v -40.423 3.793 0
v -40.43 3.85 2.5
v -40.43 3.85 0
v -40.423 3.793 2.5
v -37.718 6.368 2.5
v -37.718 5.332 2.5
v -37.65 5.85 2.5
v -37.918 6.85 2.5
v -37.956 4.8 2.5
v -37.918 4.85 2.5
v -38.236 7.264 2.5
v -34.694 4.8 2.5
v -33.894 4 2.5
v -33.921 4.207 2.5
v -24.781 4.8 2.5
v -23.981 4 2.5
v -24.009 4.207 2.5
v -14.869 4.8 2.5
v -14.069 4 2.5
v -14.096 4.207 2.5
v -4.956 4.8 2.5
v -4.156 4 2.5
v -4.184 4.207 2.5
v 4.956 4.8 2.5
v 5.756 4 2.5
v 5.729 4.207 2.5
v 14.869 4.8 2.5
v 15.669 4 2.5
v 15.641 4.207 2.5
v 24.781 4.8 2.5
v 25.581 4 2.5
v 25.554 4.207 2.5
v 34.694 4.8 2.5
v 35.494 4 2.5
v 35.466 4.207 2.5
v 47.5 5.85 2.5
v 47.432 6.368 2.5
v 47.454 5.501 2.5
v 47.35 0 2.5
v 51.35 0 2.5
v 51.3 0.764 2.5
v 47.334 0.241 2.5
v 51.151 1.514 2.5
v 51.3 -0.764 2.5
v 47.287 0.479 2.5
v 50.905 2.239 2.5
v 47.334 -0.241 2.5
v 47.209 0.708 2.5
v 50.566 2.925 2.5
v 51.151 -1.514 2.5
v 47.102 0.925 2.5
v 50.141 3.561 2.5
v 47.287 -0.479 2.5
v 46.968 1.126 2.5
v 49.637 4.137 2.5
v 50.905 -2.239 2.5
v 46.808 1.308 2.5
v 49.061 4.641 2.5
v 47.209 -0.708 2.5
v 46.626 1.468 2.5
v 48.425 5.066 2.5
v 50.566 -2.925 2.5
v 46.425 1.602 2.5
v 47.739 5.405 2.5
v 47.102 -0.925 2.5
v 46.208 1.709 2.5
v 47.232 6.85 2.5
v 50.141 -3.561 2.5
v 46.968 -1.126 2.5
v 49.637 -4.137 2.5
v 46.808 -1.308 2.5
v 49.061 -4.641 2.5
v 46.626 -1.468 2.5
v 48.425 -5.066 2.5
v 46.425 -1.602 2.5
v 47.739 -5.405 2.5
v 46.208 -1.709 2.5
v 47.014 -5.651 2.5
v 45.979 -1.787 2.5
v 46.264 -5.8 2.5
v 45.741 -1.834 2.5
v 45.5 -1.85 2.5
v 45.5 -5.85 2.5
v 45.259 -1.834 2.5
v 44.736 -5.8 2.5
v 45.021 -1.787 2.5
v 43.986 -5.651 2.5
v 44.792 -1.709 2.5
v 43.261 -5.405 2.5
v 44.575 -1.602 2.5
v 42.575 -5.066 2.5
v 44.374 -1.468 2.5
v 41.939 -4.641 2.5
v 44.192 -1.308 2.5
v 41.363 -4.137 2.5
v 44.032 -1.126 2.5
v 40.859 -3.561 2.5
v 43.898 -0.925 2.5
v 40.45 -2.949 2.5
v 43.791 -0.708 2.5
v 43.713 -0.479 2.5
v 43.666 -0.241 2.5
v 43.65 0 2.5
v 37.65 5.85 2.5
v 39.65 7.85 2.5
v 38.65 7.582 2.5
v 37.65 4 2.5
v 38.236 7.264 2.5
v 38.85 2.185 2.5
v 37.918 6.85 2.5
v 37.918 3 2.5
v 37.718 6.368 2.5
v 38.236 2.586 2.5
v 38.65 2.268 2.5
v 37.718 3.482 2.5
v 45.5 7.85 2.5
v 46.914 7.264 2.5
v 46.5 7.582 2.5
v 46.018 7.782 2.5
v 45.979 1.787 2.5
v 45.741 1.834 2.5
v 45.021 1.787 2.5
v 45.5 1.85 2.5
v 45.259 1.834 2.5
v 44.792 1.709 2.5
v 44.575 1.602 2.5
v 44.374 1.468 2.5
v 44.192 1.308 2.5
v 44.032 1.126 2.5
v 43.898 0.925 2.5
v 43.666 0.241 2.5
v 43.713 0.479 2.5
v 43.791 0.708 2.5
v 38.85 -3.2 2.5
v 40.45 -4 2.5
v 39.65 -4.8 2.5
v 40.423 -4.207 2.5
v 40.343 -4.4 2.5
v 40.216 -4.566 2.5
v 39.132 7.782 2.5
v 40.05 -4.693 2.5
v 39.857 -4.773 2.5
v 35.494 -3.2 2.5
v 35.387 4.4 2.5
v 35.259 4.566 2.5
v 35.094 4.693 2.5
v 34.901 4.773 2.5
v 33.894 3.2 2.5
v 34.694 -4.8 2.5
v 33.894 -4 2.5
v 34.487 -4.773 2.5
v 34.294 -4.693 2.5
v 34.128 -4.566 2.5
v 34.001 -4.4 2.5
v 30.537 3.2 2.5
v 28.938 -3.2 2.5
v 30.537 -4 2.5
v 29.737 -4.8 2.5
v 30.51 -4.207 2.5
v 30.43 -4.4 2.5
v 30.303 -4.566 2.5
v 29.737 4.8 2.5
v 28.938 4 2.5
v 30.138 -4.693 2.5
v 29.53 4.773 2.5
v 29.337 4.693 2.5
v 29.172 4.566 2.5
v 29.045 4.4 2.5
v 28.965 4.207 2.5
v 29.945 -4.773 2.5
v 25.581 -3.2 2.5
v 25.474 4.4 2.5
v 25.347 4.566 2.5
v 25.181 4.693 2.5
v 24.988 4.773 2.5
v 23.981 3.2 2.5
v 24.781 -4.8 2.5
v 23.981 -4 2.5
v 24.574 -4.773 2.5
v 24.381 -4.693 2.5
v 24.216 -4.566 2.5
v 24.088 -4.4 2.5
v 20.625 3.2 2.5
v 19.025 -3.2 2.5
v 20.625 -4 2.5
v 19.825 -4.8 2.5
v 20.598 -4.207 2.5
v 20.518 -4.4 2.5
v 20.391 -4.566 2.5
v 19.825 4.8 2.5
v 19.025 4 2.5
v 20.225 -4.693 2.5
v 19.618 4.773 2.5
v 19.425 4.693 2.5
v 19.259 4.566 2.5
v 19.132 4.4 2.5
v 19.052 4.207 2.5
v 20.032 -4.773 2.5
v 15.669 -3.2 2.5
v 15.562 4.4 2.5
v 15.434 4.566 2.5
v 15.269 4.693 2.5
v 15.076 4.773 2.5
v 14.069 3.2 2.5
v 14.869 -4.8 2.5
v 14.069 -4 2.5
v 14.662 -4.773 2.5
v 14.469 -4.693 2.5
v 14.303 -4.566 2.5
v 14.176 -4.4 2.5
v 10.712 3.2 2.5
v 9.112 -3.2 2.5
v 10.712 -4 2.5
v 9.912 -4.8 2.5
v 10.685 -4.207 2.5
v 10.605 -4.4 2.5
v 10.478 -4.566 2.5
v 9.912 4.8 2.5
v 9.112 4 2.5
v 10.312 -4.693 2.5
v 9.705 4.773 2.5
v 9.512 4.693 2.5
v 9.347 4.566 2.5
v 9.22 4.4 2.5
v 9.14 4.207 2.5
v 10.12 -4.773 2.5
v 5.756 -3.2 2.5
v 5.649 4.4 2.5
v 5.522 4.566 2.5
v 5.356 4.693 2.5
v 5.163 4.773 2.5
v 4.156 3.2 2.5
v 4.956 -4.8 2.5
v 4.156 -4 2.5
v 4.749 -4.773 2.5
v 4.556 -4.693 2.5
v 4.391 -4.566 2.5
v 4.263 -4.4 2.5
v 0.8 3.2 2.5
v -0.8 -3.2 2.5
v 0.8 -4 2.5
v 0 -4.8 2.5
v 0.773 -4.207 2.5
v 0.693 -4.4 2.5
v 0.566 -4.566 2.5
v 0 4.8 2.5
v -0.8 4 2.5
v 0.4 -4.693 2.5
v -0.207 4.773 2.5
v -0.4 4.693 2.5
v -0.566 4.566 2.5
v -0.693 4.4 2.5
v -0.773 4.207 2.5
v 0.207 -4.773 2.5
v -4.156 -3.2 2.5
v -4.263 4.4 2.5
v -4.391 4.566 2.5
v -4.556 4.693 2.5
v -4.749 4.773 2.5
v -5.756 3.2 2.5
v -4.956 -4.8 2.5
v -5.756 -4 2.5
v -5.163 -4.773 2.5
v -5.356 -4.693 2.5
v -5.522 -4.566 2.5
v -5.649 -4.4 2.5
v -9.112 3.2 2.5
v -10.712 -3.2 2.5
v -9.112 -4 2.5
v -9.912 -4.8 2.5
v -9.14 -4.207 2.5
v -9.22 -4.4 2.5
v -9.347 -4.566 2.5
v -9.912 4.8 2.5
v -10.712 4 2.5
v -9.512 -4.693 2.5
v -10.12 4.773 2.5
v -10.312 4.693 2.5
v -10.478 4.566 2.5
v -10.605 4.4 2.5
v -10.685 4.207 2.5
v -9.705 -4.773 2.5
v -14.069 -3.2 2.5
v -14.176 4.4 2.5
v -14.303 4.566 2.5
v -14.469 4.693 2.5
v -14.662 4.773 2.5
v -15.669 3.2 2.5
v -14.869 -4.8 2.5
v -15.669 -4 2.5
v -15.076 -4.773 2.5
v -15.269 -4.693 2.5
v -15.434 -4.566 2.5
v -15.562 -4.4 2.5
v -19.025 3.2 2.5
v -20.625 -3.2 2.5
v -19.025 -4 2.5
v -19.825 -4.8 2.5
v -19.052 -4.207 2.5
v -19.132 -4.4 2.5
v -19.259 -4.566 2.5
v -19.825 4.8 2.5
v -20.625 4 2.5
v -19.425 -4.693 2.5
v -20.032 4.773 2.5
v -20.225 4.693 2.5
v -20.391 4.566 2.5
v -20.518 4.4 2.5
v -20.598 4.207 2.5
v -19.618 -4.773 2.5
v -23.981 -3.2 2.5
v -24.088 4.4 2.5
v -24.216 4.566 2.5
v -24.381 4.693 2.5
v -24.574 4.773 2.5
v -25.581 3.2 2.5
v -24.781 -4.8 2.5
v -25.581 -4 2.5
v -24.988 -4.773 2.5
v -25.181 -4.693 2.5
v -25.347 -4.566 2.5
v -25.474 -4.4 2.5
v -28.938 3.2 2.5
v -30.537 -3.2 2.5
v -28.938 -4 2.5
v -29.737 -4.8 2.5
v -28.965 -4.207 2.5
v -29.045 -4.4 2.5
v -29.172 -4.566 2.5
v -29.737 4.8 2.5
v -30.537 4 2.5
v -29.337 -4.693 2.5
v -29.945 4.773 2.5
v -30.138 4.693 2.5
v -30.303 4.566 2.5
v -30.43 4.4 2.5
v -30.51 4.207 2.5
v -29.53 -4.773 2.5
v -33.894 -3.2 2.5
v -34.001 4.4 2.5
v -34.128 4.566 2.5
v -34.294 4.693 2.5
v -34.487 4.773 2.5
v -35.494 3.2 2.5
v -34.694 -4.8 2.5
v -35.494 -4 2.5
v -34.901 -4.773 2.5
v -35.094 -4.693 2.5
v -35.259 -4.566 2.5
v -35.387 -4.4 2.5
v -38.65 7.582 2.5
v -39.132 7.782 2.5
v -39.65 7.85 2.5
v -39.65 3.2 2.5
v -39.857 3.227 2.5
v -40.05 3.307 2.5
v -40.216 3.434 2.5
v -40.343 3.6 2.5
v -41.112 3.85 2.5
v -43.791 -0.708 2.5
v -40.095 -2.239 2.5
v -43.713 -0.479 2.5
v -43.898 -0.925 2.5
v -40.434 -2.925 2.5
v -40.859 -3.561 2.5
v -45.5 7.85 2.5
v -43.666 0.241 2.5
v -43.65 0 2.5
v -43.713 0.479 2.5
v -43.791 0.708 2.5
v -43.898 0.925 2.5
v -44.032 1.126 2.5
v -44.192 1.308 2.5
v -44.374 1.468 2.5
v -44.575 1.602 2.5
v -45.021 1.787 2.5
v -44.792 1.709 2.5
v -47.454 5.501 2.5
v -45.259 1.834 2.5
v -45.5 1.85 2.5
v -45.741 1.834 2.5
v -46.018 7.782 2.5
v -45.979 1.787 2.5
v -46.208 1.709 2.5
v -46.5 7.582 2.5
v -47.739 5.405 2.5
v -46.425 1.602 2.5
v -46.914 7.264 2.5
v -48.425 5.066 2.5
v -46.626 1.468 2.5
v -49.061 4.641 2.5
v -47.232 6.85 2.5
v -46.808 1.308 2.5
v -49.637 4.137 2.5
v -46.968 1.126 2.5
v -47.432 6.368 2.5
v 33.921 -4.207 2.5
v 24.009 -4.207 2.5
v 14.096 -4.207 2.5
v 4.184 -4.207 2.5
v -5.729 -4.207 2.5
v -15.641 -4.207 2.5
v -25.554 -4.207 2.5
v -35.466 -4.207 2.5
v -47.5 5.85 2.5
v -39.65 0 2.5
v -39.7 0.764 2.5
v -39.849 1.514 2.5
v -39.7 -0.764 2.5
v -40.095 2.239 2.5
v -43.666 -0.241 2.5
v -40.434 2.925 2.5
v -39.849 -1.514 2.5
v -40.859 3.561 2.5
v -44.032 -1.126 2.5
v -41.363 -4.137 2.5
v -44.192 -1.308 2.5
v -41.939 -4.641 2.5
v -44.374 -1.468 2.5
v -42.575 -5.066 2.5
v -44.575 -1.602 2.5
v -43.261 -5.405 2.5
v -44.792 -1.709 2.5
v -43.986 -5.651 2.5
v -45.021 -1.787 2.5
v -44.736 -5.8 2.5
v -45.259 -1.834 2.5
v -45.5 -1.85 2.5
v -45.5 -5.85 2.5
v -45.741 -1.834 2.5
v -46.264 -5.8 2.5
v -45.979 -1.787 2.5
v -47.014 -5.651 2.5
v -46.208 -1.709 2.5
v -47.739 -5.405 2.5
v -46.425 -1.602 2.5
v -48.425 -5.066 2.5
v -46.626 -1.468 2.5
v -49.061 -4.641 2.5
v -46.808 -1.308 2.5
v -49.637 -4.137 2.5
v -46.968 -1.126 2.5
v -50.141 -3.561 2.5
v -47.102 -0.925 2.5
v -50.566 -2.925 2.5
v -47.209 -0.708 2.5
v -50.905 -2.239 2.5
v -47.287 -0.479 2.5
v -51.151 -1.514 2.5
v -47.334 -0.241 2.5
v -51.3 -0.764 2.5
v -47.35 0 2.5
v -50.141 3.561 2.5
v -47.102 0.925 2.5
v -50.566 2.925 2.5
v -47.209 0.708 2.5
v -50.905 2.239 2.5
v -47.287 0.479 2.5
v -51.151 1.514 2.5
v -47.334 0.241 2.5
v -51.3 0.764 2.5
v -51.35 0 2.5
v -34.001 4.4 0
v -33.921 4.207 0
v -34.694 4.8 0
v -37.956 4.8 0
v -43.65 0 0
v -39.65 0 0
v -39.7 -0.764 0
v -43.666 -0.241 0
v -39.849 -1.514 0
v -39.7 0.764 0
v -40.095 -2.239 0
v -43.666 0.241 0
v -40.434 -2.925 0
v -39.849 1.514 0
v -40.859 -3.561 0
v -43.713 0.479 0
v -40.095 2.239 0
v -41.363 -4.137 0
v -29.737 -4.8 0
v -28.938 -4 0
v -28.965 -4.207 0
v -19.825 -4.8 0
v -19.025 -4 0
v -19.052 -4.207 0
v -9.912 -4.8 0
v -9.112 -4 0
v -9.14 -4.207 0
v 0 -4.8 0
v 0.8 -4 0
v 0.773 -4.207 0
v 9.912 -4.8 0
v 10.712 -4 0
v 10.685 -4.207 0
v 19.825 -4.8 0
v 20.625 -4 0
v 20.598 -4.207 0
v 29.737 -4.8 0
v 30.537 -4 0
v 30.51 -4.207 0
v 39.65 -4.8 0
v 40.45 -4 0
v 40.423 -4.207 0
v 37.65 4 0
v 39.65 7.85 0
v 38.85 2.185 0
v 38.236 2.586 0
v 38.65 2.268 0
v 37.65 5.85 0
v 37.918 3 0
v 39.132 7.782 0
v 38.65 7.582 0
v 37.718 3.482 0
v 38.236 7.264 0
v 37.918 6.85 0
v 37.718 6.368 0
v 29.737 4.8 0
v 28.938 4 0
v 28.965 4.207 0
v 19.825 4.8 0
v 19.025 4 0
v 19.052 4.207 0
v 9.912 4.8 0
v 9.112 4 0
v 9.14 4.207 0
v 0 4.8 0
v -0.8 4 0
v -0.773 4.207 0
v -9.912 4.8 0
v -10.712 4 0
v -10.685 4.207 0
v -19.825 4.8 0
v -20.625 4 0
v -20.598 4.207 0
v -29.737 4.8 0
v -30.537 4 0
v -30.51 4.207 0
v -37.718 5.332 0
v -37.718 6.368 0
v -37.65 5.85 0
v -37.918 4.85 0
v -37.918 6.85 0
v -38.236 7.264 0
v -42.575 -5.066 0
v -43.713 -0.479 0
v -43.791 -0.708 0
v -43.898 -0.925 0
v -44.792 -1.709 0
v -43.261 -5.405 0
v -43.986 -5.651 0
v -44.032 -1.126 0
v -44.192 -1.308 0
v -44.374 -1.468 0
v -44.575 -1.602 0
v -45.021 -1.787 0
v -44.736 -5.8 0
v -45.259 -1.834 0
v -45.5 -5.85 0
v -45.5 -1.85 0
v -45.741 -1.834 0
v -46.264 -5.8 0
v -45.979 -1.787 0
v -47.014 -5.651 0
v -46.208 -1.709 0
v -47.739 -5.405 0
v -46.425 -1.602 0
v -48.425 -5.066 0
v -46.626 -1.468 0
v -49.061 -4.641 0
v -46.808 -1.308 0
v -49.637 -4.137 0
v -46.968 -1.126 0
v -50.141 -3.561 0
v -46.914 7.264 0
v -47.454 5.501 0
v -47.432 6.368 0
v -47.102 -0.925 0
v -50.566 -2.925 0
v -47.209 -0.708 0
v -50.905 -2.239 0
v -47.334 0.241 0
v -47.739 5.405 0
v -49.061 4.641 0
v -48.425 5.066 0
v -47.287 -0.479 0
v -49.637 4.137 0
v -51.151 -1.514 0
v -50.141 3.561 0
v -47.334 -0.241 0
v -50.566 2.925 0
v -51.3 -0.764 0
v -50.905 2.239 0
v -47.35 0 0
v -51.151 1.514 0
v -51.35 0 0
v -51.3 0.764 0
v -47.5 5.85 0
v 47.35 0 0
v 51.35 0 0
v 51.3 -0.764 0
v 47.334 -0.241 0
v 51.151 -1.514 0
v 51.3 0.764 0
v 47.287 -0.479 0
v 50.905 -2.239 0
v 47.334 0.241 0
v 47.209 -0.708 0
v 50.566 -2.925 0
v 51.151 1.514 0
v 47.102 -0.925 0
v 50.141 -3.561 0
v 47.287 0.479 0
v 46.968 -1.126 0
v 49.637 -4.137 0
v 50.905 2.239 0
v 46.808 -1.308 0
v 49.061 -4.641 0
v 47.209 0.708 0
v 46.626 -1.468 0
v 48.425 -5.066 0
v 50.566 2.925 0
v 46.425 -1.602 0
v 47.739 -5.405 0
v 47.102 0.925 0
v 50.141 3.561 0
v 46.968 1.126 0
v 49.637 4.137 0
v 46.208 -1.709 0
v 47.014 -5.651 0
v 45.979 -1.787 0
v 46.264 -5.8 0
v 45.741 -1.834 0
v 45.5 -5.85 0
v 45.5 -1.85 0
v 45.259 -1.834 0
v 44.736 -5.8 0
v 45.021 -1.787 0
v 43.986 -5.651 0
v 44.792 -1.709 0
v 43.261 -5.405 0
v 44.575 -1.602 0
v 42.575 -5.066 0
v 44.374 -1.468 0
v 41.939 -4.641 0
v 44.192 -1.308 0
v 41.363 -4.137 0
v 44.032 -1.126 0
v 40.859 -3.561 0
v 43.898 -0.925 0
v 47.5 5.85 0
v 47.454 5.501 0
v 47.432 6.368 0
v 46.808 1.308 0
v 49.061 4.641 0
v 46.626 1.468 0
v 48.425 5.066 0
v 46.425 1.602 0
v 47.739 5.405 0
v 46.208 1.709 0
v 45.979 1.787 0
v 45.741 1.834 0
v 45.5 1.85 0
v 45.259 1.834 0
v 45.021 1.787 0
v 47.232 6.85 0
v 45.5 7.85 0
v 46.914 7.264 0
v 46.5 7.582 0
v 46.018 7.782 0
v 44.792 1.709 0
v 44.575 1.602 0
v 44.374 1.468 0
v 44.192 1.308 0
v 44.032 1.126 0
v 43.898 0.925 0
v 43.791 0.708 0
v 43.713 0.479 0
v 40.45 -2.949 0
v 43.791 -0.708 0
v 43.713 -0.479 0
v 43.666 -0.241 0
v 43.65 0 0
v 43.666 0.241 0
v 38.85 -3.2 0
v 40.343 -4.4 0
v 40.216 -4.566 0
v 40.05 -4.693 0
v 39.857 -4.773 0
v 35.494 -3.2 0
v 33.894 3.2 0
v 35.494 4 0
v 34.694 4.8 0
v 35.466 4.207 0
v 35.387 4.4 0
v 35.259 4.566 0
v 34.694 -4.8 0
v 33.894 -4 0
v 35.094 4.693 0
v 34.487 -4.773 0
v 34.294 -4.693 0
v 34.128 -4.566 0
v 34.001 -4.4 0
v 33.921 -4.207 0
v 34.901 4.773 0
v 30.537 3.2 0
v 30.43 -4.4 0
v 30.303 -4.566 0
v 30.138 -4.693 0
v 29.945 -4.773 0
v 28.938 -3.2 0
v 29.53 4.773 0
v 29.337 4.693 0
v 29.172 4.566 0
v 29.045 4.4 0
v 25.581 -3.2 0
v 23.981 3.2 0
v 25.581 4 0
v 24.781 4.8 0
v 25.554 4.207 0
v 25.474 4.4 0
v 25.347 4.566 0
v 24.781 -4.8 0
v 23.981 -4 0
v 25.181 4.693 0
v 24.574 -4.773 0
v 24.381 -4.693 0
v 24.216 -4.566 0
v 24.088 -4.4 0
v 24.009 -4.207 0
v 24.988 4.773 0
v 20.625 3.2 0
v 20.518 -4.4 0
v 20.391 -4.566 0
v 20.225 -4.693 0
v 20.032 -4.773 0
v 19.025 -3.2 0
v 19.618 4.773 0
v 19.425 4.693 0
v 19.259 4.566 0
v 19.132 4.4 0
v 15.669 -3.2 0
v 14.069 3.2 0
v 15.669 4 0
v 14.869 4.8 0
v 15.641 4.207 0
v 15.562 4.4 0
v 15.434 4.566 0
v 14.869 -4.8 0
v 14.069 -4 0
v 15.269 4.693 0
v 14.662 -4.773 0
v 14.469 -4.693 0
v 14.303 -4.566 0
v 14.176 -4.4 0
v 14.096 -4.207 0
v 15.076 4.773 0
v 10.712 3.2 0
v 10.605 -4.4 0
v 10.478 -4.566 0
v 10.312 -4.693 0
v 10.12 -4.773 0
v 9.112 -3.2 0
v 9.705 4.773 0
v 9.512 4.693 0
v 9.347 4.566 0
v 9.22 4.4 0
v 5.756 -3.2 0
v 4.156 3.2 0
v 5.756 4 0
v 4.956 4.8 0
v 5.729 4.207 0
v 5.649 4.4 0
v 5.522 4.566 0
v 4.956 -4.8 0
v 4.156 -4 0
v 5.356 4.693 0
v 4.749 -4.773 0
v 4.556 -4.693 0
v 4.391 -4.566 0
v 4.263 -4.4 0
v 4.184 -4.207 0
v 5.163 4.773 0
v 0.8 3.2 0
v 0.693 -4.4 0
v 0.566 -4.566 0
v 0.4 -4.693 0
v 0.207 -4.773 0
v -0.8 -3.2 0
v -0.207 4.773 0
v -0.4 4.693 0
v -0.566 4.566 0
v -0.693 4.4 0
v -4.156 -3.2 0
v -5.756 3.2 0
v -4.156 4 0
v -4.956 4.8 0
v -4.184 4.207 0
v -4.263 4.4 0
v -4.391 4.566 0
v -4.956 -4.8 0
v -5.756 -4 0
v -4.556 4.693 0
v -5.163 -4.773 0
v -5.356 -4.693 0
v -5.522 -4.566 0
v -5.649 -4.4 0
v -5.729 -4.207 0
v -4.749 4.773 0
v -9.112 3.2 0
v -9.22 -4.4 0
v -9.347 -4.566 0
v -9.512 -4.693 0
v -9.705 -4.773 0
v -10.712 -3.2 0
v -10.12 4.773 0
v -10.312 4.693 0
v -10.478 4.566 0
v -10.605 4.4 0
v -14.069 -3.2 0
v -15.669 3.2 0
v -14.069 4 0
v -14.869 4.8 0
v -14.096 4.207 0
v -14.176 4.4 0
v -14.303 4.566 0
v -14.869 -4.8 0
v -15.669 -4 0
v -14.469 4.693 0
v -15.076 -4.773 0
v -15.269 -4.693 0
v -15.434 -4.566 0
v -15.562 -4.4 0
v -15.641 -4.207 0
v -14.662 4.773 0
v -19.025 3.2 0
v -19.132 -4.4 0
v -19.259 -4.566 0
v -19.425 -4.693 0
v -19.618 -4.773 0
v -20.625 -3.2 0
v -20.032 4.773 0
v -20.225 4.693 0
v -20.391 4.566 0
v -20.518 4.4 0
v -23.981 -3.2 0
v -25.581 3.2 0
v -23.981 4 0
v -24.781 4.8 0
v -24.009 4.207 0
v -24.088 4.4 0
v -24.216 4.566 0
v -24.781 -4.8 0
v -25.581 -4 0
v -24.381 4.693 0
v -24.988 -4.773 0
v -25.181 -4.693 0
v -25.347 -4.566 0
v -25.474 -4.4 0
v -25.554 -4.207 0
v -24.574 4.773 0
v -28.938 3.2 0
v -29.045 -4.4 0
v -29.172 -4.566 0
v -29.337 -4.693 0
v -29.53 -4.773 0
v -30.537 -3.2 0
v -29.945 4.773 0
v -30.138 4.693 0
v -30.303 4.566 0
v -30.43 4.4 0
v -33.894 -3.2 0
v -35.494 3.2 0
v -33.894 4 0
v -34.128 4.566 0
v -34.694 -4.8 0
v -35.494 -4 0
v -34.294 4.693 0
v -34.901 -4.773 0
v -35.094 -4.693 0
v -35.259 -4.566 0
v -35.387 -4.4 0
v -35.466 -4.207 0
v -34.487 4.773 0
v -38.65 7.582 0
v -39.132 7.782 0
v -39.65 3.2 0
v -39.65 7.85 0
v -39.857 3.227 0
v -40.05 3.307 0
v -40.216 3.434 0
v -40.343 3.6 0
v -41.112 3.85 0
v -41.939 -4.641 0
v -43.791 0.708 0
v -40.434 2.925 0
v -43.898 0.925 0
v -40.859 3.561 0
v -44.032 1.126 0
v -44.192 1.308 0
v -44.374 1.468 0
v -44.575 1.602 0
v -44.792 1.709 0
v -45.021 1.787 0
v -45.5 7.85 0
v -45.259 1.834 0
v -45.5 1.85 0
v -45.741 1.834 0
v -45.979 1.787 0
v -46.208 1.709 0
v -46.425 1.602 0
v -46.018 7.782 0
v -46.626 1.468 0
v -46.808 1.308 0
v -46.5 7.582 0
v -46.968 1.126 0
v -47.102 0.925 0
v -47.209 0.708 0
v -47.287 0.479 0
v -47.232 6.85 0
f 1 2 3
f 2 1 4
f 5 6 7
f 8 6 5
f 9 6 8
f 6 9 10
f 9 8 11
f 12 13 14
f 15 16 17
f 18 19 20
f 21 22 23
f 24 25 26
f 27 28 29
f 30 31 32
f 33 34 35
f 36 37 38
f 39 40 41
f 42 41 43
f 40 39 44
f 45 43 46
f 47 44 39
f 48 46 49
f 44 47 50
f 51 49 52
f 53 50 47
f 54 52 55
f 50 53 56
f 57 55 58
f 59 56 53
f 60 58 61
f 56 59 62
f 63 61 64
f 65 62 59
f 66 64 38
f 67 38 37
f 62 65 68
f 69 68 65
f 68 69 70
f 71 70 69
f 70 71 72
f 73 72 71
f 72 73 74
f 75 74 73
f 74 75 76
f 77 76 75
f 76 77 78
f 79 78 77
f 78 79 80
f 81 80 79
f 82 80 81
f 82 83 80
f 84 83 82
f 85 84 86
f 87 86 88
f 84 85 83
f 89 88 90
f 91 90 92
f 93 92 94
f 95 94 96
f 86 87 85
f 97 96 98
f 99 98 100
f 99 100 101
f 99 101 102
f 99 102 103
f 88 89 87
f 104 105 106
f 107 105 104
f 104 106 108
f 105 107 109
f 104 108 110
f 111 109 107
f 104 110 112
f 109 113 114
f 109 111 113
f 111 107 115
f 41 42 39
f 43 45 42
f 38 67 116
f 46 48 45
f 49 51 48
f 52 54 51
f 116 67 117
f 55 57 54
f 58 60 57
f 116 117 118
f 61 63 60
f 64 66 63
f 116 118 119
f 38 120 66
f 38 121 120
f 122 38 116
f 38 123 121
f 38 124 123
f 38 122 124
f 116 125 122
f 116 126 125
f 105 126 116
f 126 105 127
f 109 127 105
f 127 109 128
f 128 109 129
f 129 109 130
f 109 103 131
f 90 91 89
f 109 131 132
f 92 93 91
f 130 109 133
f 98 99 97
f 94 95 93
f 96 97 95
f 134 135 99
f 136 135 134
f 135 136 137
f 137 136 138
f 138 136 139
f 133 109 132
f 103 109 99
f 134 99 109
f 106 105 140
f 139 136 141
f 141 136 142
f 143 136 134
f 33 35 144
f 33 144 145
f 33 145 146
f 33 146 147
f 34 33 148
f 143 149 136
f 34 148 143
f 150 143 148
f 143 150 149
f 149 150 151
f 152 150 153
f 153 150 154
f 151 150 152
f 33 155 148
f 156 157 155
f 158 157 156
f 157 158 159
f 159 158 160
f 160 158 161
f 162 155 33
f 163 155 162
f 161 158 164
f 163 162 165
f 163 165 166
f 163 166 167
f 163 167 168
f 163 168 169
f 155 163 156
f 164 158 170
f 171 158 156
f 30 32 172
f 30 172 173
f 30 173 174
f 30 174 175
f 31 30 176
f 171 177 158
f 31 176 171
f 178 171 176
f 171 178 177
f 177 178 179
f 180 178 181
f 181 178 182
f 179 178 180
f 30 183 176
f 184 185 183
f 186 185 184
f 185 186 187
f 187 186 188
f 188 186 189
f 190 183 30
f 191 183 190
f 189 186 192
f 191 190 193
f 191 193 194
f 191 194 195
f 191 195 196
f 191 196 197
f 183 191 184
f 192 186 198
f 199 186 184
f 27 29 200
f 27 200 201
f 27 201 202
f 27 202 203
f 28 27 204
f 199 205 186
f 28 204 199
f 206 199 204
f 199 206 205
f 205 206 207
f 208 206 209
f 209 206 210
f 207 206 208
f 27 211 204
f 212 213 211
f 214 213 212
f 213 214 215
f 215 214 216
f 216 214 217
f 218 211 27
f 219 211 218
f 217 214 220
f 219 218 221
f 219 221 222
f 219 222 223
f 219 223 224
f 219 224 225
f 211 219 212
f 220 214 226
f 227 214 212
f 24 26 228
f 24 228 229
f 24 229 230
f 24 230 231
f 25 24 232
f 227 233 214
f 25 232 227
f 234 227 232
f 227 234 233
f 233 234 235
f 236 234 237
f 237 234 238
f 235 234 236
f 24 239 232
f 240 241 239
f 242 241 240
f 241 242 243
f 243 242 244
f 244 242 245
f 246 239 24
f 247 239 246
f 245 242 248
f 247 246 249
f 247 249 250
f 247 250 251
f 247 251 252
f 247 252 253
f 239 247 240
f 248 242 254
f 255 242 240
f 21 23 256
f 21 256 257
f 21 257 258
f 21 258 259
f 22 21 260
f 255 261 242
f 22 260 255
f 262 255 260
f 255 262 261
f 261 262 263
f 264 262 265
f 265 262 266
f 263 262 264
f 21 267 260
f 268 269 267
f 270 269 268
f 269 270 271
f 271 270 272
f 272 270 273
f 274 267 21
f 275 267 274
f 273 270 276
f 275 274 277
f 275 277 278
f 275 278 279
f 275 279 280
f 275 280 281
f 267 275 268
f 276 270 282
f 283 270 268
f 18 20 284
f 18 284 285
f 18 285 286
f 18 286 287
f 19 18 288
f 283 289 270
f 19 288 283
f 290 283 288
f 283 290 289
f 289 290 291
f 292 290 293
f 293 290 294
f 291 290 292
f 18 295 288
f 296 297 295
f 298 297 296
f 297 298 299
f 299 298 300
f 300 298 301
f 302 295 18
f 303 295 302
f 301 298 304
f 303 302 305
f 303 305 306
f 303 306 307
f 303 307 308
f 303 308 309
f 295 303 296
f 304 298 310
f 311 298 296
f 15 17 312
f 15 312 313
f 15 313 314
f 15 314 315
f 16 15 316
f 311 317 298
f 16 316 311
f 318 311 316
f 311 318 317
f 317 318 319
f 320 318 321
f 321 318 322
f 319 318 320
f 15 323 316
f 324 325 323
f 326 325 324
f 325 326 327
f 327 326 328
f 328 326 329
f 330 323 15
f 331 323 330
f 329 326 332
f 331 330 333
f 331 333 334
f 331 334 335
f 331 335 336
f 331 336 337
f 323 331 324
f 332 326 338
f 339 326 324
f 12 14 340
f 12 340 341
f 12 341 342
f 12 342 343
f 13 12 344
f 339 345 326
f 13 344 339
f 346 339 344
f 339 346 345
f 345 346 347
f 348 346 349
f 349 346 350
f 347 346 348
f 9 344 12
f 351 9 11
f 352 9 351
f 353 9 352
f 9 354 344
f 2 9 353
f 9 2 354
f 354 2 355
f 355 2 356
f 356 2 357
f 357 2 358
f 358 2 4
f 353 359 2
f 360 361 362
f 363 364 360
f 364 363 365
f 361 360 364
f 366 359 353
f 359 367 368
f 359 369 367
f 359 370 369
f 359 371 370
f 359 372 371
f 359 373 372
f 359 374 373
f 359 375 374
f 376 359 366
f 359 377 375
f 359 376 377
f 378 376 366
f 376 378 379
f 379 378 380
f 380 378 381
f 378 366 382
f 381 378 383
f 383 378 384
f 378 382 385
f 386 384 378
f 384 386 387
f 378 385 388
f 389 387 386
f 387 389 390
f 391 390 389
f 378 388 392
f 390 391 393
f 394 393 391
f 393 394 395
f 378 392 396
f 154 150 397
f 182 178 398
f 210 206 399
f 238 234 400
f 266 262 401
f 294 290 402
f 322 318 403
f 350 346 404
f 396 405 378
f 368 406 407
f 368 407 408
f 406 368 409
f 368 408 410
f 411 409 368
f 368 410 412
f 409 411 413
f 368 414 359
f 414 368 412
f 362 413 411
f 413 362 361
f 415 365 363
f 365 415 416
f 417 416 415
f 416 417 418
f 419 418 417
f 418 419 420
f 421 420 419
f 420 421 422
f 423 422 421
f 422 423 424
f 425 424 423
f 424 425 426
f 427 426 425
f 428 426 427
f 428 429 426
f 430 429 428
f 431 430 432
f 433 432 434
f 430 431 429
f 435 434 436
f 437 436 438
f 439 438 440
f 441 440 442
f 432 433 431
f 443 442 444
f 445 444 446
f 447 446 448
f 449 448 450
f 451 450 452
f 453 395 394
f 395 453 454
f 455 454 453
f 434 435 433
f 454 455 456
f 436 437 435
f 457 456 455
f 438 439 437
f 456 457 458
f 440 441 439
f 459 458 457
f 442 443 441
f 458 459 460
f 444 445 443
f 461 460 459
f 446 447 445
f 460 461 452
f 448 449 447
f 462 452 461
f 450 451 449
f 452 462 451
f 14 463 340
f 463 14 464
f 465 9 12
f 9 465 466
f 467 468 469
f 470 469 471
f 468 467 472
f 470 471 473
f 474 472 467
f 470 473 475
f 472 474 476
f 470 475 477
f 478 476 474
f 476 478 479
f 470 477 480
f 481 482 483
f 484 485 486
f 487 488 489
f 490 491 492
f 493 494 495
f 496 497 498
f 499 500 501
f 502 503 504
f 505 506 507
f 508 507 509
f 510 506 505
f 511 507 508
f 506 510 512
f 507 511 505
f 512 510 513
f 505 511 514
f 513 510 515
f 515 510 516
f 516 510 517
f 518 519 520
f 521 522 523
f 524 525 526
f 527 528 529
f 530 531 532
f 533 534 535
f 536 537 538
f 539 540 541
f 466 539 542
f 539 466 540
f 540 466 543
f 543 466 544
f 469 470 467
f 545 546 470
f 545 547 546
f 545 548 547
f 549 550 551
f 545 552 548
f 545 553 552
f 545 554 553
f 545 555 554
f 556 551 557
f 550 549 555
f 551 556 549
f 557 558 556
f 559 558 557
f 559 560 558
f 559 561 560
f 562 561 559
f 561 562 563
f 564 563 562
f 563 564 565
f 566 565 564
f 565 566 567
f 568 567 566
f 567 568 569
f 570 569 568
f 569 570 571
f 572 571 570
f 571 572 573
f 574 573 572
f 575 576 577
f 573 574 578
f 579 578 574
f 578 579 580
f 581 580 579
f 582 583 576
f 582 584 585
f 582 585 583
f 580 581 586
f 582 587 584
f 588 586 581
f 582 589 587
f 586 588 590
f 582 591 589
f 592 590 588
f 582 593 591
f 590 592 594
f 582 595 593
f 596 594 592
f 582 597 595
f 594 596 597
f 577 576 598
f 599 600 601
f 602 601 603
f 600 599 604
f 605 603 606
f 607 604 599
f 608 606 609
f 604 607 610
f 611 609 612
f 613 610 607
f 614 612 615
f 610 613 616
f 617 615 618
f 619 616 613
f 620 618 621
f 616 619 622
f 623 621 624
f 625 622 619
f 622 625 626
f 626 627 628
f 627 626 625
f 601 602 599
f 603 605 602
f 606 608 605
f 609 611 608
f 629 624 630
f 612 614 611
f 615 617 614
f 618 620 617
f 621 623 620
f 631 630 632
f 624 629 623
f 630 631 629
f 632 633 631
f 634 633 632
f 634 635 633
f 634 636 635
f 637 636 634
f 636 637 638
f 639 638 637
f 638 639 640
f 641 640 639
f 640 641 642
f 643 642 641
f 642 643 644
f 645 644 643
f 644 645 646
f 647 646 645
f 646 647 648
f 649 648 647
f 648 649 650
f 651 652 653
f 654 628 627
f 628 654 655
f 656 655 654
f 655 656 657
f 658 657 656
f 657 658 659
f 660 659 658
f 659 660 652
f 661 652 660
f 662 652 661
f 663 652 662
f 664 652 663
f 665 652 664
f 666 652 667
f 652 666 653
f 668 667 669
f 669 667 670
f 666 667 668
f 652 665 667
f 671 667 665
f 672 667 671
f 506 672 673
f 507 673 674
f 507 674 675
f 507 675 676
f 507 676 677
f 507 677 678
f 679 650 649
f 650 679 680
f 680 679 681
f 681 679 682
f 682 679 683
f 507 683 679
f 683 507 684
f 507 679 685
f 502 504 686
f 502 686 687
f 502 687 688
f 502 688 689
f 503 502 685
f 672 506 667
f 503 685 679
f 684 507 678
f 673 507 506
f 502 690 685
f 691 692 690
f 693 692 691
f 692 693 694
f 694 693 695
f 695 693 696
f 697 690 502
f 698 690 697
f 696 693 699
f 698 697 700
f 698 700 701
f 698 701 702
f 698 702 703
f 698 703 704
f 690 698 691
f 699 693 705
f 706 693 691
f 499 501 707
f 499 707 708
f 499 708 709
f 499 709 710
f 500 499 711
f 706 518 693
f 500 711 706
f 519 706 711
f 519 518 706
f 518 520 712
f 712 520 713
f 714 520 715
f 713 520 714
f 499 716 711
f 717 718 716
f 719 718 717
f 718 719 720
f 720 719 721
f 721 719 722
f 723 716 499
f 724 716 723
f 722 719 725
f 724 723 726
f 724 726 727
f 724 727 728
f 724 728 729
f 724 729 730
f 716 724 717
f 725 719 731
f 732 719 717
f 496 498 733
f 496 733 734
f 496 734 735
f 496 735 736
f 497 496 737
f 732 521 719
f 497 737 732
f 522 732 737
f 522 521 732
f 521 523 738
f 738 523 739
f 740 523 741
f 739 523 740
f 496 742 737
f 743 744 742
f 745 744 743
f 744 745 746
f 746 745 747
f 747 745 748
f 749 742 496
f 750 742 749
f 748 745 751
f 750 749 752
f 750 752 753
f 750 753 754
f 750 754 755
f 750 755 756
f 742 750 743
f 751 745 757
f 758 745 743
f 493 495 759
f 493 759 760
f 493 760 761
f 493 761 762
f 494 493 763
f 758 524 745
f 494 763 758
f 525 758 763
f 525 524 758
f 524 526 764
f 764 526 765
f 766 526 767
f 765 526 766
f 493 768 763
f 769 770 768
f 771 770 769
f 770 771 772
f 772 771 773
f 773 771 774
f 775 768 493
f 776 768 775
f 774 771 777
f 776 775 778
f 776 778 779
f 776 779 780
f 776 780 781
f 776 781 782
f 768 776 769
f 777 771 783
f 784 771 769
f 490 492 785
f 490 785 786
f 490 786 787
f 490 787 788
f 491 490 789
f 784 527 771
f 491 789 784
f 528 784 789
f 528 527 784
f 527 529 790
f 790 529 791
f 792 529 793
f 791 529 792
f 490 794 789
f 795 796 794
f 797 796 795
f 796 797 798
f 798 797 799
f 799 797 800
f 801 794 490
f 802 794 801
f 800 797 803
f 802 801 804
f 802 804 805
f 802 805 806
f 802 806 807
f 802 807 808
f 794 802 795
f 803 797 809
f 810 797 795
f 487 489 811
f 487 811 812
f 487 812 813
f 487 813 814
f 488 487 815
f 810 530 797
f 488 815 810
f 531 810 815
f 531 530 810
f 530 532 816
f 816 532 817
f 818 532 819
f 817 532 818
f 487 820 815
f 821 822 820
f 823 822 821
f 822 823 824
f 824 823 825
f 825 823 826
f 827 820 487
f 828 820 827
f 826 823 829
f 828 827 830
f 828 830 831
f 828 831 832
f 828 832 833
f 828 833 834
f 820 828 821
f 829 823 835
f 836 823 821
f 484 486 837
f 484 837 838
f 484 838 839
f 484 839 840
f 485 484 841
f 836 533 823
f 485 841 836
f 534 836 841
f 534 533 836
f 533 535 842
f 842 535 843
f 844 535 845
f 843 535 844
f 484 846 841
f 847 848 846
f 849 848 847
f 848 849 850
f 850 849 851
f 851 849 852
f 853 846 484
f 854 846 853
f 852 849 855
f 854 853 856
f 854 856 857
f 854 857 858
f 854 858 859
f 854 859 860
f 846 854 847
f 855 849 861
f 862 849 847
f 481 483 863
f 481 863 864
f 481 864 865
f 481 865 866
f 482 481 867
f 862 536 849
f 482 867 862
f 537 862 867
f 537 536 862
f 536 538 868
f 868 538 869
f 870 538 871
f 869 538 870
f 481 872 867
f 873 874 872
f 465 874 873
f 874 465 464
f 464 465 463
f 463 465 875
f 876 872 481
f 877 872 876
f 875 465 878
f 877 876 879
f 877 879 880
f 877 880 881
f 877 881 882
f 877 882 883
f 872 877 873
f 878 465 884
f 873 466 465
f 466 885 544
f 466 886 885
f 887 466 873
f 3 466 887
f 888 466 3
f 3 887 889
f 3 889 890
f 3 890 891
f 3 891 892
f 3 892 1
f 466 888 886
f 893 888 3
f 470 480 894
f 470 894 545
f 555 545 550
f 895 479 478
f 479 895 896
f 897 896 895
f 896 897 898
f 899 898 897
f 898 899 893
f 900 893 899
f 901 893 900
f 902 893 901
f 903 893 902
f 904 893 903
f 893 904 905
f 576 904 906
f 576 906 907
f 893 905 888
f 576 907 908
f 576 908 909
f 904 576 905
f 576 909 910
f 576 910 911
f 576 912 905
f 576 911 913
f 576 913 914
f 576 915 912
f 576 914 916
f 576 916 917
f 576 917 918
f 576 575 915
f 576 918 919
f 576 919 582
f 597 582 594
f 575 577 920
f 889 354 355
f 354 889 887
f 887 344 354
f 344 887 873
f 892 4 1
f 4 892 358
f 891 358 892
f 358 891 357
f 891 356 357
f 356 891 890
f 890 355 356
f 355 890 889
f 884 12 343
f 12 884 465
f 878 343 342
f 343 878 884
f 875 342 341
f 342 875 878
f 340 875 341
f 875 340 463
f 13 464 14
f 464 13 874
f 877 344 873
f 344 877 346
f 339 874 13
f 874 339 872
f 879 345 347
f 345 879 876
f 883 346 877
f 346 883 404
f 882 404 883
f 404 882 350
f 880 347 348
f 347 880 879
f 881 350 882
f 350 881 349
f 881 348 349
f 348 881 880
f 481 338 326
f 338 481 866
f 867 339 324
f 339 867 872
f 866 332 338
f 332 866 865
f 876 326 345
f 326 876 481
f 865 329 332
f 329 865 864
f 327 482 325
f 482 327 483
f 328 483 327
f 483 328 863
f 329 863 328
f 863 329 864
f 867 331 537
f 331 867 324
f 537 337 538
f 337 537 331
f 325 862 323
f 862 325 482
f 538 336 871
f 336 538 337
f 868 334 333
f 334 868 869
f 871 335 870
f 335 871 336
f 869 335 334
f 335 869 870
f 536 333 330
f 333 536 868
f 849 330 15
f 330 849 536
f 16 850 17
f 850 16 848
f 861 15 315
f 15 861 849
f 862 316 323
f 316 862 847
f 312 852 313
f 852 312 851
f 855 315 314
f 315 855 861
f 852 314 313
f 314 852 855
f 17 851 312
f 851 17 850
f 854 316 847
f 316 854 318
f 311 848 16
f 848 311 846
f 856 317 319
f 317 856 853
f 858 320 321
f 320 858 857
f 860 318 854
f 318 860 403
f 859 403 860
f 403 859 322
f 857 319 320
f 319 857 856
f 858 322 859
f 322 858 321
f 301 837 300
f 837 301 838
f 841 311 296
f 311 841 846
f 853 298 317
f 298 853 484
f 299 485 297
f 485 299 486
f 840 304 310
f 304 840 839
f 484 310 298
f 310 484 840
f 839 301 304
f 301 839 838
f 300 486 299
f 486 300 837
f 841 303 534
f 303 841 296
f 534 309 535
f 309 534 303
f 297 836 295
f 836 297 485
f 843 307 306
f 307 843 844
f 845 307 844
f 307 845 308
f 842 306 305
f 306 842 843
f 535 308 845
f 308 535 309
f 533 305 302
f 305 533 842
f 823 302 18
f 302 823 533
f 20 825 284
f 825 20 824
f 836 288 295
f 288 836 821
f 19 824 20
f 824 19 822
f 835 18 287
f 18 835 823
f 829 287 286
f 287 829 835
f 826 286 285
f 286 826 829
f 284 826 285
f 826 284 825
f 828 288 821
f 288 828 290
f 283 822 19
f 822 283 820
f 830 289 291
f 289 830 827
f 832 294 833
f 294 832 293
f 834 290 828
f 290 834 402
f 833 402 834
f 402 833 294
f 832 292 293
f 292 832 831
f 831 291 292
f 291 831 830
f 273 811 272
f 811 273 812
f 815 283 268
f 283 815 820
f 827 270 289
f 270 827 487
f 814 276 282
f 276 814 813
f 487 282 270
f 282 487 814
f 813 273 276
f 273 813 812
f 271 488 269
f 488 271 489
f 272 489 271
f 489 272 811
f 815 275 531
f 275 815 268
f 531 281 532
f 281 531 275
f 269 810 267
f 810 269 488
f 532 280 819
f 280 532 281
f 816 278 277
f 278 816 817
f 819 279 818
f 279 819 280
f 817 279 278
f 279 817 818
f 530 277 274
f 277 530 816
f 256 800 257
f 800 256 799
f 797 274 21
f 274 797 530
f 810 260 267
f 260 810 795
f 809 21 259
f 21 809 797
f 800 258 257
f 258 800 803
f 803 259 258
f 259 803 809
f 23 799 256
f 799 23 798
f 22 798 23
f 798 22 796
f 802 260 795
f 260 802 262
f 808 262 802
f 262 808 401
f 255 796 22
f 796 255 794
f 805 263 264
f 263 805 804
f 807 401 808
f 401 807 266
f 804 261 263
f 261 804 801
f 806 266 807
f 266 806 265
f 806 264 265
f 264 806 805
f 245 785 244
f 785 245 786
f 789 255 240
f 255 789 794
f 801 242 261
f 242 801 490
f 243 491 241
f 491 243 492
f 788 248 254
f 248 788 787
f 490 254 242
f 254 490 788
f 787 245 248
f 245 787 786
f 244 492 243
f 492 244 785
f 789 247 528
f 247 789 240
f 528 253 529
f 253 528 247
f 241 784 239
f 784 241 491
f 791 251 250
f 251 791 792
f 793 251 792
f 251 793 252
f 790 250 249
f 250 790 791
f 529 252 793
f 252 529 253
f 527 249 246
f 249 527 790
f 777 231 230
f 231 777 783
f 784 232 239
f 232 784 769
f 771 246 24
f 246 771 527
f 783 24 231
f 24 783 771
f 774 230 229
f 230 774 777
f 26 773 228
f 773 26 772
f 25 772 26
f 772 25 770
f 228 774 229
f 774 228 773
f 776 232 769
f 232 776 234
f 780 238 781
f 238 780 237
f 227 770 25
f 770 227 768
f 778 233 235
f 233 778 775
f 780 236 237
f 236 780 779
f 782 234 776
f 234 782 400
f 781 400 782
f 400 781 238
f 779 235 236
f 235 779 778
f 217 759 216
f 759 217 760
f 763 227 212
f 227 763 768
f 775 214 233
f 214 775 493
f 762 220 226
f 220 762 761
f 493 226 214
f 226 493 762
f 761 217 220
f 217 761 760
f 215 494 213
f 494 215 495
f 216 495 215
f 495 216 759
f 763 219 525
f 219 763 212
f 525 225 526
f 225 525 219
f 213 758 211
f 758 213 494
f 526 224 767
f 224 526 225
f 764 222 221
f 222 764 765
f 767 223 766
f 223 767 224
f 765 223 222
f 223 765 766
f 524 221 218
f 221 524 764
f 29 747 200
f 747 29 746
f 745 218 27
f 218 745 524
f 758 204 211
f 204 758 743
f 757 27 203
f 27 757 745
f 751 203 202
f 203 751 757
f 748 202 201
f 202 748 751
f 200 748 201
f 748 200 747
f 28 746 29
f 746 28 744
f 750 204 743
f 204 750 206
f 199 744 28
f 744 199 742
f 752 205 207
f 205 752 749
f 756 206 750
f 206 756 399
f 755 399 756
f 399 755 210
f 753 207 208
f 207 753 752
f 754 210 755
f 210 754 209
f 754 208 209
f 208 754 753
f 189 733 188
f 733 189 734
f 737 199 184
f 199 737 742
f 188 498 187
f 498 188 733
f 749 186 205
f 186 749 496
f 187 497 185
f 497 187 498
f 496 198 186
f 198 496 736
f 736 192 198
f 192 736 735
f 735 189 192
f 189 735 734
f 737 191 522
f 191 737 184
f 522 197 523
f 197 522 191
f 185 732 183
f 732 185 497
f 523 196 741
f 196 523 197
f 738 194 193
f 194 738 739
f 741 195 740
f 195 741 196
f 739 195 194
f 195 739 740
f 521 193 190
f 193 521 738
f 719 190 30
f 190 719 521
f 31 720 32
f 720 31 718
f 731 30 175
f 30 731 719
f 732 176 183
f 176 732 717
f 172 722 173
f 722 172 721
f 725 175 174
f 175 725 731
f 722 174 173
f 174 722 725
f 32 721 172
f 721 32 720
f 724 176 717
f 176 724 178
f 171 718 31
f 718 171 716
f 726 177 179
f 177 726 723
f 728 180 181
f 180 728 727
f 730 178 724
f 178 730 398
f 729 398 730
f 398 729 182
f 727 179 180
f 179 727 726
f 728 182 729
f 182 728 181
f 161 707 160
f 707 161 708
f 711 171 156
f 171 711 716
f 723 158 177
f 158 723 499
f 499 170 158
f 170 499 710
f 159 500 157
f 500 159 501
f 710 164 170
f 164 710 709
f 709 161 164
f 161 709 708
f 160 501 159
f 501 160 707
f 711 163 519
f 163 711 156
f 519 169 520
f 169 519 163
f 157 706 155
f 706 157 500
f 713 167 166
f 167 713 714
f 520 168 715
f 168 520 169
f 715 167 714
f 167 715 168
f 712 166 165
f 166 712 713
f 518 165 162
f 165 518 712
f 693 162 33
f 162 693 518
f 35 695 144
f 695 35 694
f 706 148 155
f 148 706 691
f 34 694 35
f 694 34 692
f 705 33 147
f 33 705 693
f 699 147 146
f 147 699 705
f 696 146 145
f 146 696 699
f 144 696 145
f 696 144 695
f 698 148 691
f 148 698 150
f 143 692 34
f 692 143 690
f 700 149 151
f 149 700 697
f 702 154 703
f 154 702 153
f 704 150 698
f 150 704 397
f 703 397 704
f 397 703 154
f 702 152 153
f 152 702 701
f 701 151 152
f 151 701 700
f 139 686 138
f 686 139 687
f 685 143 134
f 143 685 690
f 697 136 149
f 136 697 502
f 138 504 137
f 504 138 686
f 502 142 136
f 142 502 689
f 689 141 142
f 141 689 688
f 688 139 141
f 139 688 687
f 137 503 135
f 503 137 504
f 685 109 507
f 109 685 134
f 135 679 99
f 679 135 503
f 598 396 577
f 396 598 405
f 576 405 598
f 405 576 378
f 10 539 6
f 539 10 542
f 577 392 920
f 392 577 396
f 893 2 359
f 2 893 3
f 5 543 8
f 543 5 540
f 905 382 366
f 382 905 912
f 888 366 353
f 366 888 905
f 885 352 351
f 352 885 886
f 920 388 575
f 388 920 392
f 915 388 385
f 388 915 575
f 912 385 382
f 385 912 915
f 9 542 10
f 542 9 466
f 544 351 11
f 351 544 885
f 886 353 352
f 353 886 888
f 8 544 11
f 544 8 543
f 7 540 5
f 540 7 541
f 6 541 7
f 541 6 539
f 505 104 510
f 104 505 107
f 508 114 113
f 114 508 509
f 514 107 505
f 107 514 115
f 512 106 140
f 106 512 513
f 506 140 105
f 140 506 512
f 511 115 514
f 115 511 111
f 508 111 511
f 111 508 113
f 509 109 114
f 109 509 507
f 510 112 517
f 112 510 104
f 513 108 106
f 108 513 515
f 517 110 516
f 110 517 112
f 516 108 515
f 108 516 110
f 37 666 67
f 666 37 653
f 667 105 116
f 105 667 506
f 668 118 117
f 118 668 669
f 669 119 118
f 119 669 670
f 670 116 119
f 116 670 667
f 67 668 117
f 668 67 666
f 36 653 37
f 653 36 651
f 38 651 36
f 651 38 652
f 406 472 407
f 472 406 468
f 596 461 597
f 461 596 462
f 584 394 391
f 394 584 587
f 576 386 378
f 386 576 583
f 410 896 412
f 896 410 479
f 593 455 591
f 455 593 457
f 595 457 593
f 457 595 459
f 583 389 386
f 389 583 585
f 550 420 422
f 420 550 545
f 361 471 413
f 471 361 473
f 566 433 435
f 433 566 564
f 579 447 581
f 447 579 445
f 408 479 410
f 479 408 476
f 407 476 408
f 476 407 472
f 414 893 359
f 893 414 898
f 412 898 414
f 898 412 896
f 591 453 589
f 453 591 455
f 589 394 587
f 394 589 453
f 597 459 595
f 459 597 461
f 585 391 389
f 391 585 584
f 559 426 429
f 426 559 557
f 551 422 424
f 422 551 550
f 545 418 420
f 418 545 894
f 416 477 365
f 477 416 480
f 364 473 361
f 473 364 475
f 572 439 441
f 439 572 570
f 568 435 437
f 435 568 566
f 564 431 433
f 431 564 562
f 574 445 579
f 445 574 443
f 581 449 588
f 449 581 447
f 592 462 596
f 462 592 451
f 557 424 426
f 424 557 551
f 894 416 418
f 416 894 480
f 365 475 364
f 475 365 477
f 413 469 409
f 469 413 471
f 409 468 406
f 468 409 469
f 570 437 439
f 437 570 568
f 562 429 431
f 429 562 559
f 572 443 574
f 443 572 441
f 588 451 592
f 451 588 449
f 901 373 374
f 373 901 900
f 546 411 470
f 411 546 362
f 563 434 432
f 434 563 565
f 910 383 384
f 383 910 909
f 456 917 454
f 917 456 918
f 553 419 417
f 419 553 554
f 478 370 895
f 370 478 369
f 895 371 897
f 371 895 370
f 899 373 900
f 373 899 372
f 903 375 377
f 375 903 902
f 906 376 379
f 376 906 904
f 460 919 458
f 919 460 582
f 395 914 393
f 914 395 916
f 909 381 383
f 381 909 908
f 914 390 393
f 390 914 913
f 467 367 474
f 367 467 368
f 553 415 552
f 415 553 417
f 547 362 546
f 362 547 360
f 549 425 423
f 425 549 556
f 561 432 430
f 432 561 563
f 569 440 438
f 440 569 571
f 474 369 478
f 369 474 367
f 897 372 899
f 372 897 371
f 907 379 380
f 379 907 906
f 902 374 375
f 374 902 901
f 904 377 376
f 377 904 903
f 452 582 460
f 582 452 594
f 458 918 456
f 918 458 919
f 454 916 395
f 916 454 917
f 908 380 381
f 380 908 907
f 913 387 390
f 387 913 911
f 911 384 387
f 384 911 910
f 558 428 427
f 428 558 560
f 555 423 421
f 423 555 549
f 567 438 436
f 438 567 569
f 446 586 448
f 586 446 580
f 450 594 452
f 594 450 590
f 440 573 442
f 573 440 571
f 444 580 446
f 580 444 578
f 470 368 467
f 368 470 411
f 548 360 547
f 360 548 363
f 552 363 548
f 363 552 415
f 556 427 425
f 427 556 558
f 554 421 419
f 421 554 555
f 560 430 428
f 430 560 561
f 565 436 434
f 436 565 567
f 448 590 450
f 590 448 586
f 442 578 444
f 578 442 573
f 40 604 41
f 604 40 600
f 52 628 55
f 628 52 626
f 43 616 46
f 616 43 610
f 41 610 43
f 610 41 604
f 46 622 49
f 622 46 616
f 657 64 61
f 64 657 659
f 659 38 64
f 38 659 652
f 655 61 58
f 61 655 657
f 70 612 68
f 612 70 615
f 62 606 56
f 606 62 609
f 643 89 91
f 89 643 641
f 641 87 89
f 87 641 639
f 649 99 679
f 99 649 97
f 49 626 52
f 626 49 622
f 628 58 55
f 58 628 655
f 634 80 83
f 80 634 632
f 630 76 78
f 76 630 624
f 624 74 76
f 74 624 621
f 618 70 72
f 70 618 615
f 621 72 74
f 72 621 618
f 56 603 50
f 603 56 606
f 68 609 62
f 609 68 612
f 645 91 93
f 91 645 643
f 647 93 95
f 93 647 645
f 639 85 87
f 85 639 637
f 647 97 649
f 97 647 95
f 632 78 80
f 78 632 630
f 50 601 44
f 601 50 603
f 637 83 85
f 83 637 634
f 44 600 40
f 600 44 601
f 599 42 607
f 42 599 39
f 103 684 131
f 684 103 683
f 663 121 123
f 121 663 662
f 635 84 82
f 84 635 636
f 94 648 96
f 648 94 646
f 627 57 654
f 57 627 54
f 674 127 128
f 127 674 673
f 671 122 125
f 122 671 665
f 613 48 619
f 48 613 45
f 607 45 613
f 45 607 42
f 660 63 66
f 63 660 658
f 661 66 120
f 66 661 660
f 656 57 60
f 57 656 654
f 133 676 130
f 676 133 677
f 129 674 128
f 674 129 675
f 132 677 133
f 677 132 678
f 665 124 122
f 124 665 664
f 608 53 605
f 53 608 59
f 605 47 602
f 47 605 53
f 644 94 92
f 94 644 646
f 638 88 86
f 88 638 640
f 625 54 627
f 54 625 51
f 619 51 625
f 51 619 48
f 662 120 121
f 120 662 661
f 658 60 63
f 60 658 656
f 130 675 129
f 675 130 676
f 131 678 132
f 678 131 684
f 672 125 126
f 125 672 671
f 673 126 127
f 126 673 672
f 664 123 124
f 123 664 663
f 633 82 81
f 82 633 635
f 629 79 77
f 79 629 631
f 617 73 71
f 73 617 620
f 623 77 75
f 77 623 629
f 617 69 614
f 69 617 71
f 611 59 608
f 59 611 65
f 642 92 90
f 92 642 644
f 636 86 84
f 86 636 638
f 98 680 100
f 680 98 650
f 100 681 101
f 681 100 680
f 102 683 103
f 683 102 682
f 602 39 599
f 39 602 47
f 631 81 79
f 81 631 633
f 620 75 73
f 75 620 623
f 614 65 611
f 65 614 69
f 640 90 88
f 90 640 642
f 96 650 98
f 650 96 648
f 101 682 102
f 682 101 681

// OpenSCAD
// Project Grace - preloaded, clip-on tension spring for opposing arm pairs.
// Fit it after the climber is placed around the pipe, then lock the eyelets to the arm posts.

$fn = 48;

view_mode = "band";

// Match this to the centre-to-centre spacing of two opposing chassis anchor posts.
anchor_spacing = 94;
preload_extension = 3;

// Print flat so it flexes in the XY plane.
// Thick ends resist wear at the anchors; the full span between them is the spring.
band_thickness = 2.5;
mount_beam_width = 4;
spring_beam_width = 1.6;
serpentine_amplitude = 4;
serpentine_sections = 16;

// Closed eyelets cannot release from their posts once the locking cap is fitted.
anchor_post_diameter = 3;
eyelet_clearance = 0.35;
locking_cap_diameter = 6;
locking_cap_height = 2;
locking_cap_bore = 2.85;

function free_anchor_spacing() = anchor_spacing - preload_extension;
function eyelet_outer_radius() = (
    anchor_post_diameter + 2 * eyelet_clearance + 2 * mount_beam_width
) / 2;
function spring_start_x() = -free_anchor_spacing() / 2 + eyelet_outer_radius();
function spring_end_x() = free_anchor_spacing() / 2 - eyelet_outer_radius();
function spring_pitch() = (
    spring_end_x() - spring_start_x()
) / serpentine_sections;

function fold_y(section) =
    section % 2 == 0
            ? serpentine_amplitude
            : -serpentine_amplitude;

module beam(point_a, point_b, width) {
    hull() {
        translate([point_a[0], point_a[1], 0])
            cylinder(d = width, h = band_thickness, $fn = 24);
        translate([point_b[0], point_b[1], 0])
            cylinder(d = width, h = band_thickness, $fn = 24);
    }
}

module full_span_accordion() {
    // Thick necks meet the closed eyelets; every section between them is a folded flexure.
    beam(
        [-free_anchor_spacing() / 2, eyelet_outer_radius()],
        [spring_start_x(), eyelet_outer_radius()],
        mount_beam_width
    );
    beam(
        [spring_start_x(), eyelet_outer_radius()],
        [spring_start_x(), fold_y(0)],
        spring_beam_width
    );

    for (section = [1 : serpentine_sections]) {
        beam(
            [spring_start_x() + (section - 1) * spring_pitch(), fold_y(section - 1)],
            [spring_start_x() + section * spring_pitch(), fold_y(section - 1)],
            spring_beam_width
        );
        beam(
            [spring_start_x() + section * spring_pitch(), fold_y(section - 1)],
            [spring_start_x() + section * spring_pitch(), fold_y(section)],
            spring_beam_width
        );
    }
    beam(
        [spring_end_x(), fold_y(serpentine_sections)],
        [spring_end_x(), eyelet_outer_radius()],
        mount_beam_width
    );
    beam(
        [spring_end_x(), eyelet_outer_radius()],
        [free_anchor_spacing() / 2, eyelet_outer_radius()],
        mount_beam_width
    );
}

module closed_eyelet(x_position) {
    difference() {
        translate([x_position, 0, 0])
            cylinder(
                d = 2 * eyelet_outer_radius(),
                h = band_thickness,
                $fn = 48
            );
        translate([x_position, 0, -1])
            cylinder(
                d = anchor_post_diameter + 2 * eyelet_clearance,
                h = band_thickness + 2,
                $fn = 48
            );
    }
}

module locking_cap() {
    difference() {
        cylinder(d = locking_cap_diameter, h = locking_cap_height, $fn = 48);
        translate([0, 0, -1])
            cylinder(d = locking_cap_bore, h = locking_cap_height + 2, $fn = 48);
    }
}

module cross_spring_band() {
    union() {
        full_span_accordion();
        closed_eyelet(-free_anchor_spacing() / 2);
        closed_eyelet(free_anchor_spacing() / 2);
    }
}

if (view_mode == "cap")
    color("orange")
        locking_cap();
else
    color("orange")
        cross_spring_band();
